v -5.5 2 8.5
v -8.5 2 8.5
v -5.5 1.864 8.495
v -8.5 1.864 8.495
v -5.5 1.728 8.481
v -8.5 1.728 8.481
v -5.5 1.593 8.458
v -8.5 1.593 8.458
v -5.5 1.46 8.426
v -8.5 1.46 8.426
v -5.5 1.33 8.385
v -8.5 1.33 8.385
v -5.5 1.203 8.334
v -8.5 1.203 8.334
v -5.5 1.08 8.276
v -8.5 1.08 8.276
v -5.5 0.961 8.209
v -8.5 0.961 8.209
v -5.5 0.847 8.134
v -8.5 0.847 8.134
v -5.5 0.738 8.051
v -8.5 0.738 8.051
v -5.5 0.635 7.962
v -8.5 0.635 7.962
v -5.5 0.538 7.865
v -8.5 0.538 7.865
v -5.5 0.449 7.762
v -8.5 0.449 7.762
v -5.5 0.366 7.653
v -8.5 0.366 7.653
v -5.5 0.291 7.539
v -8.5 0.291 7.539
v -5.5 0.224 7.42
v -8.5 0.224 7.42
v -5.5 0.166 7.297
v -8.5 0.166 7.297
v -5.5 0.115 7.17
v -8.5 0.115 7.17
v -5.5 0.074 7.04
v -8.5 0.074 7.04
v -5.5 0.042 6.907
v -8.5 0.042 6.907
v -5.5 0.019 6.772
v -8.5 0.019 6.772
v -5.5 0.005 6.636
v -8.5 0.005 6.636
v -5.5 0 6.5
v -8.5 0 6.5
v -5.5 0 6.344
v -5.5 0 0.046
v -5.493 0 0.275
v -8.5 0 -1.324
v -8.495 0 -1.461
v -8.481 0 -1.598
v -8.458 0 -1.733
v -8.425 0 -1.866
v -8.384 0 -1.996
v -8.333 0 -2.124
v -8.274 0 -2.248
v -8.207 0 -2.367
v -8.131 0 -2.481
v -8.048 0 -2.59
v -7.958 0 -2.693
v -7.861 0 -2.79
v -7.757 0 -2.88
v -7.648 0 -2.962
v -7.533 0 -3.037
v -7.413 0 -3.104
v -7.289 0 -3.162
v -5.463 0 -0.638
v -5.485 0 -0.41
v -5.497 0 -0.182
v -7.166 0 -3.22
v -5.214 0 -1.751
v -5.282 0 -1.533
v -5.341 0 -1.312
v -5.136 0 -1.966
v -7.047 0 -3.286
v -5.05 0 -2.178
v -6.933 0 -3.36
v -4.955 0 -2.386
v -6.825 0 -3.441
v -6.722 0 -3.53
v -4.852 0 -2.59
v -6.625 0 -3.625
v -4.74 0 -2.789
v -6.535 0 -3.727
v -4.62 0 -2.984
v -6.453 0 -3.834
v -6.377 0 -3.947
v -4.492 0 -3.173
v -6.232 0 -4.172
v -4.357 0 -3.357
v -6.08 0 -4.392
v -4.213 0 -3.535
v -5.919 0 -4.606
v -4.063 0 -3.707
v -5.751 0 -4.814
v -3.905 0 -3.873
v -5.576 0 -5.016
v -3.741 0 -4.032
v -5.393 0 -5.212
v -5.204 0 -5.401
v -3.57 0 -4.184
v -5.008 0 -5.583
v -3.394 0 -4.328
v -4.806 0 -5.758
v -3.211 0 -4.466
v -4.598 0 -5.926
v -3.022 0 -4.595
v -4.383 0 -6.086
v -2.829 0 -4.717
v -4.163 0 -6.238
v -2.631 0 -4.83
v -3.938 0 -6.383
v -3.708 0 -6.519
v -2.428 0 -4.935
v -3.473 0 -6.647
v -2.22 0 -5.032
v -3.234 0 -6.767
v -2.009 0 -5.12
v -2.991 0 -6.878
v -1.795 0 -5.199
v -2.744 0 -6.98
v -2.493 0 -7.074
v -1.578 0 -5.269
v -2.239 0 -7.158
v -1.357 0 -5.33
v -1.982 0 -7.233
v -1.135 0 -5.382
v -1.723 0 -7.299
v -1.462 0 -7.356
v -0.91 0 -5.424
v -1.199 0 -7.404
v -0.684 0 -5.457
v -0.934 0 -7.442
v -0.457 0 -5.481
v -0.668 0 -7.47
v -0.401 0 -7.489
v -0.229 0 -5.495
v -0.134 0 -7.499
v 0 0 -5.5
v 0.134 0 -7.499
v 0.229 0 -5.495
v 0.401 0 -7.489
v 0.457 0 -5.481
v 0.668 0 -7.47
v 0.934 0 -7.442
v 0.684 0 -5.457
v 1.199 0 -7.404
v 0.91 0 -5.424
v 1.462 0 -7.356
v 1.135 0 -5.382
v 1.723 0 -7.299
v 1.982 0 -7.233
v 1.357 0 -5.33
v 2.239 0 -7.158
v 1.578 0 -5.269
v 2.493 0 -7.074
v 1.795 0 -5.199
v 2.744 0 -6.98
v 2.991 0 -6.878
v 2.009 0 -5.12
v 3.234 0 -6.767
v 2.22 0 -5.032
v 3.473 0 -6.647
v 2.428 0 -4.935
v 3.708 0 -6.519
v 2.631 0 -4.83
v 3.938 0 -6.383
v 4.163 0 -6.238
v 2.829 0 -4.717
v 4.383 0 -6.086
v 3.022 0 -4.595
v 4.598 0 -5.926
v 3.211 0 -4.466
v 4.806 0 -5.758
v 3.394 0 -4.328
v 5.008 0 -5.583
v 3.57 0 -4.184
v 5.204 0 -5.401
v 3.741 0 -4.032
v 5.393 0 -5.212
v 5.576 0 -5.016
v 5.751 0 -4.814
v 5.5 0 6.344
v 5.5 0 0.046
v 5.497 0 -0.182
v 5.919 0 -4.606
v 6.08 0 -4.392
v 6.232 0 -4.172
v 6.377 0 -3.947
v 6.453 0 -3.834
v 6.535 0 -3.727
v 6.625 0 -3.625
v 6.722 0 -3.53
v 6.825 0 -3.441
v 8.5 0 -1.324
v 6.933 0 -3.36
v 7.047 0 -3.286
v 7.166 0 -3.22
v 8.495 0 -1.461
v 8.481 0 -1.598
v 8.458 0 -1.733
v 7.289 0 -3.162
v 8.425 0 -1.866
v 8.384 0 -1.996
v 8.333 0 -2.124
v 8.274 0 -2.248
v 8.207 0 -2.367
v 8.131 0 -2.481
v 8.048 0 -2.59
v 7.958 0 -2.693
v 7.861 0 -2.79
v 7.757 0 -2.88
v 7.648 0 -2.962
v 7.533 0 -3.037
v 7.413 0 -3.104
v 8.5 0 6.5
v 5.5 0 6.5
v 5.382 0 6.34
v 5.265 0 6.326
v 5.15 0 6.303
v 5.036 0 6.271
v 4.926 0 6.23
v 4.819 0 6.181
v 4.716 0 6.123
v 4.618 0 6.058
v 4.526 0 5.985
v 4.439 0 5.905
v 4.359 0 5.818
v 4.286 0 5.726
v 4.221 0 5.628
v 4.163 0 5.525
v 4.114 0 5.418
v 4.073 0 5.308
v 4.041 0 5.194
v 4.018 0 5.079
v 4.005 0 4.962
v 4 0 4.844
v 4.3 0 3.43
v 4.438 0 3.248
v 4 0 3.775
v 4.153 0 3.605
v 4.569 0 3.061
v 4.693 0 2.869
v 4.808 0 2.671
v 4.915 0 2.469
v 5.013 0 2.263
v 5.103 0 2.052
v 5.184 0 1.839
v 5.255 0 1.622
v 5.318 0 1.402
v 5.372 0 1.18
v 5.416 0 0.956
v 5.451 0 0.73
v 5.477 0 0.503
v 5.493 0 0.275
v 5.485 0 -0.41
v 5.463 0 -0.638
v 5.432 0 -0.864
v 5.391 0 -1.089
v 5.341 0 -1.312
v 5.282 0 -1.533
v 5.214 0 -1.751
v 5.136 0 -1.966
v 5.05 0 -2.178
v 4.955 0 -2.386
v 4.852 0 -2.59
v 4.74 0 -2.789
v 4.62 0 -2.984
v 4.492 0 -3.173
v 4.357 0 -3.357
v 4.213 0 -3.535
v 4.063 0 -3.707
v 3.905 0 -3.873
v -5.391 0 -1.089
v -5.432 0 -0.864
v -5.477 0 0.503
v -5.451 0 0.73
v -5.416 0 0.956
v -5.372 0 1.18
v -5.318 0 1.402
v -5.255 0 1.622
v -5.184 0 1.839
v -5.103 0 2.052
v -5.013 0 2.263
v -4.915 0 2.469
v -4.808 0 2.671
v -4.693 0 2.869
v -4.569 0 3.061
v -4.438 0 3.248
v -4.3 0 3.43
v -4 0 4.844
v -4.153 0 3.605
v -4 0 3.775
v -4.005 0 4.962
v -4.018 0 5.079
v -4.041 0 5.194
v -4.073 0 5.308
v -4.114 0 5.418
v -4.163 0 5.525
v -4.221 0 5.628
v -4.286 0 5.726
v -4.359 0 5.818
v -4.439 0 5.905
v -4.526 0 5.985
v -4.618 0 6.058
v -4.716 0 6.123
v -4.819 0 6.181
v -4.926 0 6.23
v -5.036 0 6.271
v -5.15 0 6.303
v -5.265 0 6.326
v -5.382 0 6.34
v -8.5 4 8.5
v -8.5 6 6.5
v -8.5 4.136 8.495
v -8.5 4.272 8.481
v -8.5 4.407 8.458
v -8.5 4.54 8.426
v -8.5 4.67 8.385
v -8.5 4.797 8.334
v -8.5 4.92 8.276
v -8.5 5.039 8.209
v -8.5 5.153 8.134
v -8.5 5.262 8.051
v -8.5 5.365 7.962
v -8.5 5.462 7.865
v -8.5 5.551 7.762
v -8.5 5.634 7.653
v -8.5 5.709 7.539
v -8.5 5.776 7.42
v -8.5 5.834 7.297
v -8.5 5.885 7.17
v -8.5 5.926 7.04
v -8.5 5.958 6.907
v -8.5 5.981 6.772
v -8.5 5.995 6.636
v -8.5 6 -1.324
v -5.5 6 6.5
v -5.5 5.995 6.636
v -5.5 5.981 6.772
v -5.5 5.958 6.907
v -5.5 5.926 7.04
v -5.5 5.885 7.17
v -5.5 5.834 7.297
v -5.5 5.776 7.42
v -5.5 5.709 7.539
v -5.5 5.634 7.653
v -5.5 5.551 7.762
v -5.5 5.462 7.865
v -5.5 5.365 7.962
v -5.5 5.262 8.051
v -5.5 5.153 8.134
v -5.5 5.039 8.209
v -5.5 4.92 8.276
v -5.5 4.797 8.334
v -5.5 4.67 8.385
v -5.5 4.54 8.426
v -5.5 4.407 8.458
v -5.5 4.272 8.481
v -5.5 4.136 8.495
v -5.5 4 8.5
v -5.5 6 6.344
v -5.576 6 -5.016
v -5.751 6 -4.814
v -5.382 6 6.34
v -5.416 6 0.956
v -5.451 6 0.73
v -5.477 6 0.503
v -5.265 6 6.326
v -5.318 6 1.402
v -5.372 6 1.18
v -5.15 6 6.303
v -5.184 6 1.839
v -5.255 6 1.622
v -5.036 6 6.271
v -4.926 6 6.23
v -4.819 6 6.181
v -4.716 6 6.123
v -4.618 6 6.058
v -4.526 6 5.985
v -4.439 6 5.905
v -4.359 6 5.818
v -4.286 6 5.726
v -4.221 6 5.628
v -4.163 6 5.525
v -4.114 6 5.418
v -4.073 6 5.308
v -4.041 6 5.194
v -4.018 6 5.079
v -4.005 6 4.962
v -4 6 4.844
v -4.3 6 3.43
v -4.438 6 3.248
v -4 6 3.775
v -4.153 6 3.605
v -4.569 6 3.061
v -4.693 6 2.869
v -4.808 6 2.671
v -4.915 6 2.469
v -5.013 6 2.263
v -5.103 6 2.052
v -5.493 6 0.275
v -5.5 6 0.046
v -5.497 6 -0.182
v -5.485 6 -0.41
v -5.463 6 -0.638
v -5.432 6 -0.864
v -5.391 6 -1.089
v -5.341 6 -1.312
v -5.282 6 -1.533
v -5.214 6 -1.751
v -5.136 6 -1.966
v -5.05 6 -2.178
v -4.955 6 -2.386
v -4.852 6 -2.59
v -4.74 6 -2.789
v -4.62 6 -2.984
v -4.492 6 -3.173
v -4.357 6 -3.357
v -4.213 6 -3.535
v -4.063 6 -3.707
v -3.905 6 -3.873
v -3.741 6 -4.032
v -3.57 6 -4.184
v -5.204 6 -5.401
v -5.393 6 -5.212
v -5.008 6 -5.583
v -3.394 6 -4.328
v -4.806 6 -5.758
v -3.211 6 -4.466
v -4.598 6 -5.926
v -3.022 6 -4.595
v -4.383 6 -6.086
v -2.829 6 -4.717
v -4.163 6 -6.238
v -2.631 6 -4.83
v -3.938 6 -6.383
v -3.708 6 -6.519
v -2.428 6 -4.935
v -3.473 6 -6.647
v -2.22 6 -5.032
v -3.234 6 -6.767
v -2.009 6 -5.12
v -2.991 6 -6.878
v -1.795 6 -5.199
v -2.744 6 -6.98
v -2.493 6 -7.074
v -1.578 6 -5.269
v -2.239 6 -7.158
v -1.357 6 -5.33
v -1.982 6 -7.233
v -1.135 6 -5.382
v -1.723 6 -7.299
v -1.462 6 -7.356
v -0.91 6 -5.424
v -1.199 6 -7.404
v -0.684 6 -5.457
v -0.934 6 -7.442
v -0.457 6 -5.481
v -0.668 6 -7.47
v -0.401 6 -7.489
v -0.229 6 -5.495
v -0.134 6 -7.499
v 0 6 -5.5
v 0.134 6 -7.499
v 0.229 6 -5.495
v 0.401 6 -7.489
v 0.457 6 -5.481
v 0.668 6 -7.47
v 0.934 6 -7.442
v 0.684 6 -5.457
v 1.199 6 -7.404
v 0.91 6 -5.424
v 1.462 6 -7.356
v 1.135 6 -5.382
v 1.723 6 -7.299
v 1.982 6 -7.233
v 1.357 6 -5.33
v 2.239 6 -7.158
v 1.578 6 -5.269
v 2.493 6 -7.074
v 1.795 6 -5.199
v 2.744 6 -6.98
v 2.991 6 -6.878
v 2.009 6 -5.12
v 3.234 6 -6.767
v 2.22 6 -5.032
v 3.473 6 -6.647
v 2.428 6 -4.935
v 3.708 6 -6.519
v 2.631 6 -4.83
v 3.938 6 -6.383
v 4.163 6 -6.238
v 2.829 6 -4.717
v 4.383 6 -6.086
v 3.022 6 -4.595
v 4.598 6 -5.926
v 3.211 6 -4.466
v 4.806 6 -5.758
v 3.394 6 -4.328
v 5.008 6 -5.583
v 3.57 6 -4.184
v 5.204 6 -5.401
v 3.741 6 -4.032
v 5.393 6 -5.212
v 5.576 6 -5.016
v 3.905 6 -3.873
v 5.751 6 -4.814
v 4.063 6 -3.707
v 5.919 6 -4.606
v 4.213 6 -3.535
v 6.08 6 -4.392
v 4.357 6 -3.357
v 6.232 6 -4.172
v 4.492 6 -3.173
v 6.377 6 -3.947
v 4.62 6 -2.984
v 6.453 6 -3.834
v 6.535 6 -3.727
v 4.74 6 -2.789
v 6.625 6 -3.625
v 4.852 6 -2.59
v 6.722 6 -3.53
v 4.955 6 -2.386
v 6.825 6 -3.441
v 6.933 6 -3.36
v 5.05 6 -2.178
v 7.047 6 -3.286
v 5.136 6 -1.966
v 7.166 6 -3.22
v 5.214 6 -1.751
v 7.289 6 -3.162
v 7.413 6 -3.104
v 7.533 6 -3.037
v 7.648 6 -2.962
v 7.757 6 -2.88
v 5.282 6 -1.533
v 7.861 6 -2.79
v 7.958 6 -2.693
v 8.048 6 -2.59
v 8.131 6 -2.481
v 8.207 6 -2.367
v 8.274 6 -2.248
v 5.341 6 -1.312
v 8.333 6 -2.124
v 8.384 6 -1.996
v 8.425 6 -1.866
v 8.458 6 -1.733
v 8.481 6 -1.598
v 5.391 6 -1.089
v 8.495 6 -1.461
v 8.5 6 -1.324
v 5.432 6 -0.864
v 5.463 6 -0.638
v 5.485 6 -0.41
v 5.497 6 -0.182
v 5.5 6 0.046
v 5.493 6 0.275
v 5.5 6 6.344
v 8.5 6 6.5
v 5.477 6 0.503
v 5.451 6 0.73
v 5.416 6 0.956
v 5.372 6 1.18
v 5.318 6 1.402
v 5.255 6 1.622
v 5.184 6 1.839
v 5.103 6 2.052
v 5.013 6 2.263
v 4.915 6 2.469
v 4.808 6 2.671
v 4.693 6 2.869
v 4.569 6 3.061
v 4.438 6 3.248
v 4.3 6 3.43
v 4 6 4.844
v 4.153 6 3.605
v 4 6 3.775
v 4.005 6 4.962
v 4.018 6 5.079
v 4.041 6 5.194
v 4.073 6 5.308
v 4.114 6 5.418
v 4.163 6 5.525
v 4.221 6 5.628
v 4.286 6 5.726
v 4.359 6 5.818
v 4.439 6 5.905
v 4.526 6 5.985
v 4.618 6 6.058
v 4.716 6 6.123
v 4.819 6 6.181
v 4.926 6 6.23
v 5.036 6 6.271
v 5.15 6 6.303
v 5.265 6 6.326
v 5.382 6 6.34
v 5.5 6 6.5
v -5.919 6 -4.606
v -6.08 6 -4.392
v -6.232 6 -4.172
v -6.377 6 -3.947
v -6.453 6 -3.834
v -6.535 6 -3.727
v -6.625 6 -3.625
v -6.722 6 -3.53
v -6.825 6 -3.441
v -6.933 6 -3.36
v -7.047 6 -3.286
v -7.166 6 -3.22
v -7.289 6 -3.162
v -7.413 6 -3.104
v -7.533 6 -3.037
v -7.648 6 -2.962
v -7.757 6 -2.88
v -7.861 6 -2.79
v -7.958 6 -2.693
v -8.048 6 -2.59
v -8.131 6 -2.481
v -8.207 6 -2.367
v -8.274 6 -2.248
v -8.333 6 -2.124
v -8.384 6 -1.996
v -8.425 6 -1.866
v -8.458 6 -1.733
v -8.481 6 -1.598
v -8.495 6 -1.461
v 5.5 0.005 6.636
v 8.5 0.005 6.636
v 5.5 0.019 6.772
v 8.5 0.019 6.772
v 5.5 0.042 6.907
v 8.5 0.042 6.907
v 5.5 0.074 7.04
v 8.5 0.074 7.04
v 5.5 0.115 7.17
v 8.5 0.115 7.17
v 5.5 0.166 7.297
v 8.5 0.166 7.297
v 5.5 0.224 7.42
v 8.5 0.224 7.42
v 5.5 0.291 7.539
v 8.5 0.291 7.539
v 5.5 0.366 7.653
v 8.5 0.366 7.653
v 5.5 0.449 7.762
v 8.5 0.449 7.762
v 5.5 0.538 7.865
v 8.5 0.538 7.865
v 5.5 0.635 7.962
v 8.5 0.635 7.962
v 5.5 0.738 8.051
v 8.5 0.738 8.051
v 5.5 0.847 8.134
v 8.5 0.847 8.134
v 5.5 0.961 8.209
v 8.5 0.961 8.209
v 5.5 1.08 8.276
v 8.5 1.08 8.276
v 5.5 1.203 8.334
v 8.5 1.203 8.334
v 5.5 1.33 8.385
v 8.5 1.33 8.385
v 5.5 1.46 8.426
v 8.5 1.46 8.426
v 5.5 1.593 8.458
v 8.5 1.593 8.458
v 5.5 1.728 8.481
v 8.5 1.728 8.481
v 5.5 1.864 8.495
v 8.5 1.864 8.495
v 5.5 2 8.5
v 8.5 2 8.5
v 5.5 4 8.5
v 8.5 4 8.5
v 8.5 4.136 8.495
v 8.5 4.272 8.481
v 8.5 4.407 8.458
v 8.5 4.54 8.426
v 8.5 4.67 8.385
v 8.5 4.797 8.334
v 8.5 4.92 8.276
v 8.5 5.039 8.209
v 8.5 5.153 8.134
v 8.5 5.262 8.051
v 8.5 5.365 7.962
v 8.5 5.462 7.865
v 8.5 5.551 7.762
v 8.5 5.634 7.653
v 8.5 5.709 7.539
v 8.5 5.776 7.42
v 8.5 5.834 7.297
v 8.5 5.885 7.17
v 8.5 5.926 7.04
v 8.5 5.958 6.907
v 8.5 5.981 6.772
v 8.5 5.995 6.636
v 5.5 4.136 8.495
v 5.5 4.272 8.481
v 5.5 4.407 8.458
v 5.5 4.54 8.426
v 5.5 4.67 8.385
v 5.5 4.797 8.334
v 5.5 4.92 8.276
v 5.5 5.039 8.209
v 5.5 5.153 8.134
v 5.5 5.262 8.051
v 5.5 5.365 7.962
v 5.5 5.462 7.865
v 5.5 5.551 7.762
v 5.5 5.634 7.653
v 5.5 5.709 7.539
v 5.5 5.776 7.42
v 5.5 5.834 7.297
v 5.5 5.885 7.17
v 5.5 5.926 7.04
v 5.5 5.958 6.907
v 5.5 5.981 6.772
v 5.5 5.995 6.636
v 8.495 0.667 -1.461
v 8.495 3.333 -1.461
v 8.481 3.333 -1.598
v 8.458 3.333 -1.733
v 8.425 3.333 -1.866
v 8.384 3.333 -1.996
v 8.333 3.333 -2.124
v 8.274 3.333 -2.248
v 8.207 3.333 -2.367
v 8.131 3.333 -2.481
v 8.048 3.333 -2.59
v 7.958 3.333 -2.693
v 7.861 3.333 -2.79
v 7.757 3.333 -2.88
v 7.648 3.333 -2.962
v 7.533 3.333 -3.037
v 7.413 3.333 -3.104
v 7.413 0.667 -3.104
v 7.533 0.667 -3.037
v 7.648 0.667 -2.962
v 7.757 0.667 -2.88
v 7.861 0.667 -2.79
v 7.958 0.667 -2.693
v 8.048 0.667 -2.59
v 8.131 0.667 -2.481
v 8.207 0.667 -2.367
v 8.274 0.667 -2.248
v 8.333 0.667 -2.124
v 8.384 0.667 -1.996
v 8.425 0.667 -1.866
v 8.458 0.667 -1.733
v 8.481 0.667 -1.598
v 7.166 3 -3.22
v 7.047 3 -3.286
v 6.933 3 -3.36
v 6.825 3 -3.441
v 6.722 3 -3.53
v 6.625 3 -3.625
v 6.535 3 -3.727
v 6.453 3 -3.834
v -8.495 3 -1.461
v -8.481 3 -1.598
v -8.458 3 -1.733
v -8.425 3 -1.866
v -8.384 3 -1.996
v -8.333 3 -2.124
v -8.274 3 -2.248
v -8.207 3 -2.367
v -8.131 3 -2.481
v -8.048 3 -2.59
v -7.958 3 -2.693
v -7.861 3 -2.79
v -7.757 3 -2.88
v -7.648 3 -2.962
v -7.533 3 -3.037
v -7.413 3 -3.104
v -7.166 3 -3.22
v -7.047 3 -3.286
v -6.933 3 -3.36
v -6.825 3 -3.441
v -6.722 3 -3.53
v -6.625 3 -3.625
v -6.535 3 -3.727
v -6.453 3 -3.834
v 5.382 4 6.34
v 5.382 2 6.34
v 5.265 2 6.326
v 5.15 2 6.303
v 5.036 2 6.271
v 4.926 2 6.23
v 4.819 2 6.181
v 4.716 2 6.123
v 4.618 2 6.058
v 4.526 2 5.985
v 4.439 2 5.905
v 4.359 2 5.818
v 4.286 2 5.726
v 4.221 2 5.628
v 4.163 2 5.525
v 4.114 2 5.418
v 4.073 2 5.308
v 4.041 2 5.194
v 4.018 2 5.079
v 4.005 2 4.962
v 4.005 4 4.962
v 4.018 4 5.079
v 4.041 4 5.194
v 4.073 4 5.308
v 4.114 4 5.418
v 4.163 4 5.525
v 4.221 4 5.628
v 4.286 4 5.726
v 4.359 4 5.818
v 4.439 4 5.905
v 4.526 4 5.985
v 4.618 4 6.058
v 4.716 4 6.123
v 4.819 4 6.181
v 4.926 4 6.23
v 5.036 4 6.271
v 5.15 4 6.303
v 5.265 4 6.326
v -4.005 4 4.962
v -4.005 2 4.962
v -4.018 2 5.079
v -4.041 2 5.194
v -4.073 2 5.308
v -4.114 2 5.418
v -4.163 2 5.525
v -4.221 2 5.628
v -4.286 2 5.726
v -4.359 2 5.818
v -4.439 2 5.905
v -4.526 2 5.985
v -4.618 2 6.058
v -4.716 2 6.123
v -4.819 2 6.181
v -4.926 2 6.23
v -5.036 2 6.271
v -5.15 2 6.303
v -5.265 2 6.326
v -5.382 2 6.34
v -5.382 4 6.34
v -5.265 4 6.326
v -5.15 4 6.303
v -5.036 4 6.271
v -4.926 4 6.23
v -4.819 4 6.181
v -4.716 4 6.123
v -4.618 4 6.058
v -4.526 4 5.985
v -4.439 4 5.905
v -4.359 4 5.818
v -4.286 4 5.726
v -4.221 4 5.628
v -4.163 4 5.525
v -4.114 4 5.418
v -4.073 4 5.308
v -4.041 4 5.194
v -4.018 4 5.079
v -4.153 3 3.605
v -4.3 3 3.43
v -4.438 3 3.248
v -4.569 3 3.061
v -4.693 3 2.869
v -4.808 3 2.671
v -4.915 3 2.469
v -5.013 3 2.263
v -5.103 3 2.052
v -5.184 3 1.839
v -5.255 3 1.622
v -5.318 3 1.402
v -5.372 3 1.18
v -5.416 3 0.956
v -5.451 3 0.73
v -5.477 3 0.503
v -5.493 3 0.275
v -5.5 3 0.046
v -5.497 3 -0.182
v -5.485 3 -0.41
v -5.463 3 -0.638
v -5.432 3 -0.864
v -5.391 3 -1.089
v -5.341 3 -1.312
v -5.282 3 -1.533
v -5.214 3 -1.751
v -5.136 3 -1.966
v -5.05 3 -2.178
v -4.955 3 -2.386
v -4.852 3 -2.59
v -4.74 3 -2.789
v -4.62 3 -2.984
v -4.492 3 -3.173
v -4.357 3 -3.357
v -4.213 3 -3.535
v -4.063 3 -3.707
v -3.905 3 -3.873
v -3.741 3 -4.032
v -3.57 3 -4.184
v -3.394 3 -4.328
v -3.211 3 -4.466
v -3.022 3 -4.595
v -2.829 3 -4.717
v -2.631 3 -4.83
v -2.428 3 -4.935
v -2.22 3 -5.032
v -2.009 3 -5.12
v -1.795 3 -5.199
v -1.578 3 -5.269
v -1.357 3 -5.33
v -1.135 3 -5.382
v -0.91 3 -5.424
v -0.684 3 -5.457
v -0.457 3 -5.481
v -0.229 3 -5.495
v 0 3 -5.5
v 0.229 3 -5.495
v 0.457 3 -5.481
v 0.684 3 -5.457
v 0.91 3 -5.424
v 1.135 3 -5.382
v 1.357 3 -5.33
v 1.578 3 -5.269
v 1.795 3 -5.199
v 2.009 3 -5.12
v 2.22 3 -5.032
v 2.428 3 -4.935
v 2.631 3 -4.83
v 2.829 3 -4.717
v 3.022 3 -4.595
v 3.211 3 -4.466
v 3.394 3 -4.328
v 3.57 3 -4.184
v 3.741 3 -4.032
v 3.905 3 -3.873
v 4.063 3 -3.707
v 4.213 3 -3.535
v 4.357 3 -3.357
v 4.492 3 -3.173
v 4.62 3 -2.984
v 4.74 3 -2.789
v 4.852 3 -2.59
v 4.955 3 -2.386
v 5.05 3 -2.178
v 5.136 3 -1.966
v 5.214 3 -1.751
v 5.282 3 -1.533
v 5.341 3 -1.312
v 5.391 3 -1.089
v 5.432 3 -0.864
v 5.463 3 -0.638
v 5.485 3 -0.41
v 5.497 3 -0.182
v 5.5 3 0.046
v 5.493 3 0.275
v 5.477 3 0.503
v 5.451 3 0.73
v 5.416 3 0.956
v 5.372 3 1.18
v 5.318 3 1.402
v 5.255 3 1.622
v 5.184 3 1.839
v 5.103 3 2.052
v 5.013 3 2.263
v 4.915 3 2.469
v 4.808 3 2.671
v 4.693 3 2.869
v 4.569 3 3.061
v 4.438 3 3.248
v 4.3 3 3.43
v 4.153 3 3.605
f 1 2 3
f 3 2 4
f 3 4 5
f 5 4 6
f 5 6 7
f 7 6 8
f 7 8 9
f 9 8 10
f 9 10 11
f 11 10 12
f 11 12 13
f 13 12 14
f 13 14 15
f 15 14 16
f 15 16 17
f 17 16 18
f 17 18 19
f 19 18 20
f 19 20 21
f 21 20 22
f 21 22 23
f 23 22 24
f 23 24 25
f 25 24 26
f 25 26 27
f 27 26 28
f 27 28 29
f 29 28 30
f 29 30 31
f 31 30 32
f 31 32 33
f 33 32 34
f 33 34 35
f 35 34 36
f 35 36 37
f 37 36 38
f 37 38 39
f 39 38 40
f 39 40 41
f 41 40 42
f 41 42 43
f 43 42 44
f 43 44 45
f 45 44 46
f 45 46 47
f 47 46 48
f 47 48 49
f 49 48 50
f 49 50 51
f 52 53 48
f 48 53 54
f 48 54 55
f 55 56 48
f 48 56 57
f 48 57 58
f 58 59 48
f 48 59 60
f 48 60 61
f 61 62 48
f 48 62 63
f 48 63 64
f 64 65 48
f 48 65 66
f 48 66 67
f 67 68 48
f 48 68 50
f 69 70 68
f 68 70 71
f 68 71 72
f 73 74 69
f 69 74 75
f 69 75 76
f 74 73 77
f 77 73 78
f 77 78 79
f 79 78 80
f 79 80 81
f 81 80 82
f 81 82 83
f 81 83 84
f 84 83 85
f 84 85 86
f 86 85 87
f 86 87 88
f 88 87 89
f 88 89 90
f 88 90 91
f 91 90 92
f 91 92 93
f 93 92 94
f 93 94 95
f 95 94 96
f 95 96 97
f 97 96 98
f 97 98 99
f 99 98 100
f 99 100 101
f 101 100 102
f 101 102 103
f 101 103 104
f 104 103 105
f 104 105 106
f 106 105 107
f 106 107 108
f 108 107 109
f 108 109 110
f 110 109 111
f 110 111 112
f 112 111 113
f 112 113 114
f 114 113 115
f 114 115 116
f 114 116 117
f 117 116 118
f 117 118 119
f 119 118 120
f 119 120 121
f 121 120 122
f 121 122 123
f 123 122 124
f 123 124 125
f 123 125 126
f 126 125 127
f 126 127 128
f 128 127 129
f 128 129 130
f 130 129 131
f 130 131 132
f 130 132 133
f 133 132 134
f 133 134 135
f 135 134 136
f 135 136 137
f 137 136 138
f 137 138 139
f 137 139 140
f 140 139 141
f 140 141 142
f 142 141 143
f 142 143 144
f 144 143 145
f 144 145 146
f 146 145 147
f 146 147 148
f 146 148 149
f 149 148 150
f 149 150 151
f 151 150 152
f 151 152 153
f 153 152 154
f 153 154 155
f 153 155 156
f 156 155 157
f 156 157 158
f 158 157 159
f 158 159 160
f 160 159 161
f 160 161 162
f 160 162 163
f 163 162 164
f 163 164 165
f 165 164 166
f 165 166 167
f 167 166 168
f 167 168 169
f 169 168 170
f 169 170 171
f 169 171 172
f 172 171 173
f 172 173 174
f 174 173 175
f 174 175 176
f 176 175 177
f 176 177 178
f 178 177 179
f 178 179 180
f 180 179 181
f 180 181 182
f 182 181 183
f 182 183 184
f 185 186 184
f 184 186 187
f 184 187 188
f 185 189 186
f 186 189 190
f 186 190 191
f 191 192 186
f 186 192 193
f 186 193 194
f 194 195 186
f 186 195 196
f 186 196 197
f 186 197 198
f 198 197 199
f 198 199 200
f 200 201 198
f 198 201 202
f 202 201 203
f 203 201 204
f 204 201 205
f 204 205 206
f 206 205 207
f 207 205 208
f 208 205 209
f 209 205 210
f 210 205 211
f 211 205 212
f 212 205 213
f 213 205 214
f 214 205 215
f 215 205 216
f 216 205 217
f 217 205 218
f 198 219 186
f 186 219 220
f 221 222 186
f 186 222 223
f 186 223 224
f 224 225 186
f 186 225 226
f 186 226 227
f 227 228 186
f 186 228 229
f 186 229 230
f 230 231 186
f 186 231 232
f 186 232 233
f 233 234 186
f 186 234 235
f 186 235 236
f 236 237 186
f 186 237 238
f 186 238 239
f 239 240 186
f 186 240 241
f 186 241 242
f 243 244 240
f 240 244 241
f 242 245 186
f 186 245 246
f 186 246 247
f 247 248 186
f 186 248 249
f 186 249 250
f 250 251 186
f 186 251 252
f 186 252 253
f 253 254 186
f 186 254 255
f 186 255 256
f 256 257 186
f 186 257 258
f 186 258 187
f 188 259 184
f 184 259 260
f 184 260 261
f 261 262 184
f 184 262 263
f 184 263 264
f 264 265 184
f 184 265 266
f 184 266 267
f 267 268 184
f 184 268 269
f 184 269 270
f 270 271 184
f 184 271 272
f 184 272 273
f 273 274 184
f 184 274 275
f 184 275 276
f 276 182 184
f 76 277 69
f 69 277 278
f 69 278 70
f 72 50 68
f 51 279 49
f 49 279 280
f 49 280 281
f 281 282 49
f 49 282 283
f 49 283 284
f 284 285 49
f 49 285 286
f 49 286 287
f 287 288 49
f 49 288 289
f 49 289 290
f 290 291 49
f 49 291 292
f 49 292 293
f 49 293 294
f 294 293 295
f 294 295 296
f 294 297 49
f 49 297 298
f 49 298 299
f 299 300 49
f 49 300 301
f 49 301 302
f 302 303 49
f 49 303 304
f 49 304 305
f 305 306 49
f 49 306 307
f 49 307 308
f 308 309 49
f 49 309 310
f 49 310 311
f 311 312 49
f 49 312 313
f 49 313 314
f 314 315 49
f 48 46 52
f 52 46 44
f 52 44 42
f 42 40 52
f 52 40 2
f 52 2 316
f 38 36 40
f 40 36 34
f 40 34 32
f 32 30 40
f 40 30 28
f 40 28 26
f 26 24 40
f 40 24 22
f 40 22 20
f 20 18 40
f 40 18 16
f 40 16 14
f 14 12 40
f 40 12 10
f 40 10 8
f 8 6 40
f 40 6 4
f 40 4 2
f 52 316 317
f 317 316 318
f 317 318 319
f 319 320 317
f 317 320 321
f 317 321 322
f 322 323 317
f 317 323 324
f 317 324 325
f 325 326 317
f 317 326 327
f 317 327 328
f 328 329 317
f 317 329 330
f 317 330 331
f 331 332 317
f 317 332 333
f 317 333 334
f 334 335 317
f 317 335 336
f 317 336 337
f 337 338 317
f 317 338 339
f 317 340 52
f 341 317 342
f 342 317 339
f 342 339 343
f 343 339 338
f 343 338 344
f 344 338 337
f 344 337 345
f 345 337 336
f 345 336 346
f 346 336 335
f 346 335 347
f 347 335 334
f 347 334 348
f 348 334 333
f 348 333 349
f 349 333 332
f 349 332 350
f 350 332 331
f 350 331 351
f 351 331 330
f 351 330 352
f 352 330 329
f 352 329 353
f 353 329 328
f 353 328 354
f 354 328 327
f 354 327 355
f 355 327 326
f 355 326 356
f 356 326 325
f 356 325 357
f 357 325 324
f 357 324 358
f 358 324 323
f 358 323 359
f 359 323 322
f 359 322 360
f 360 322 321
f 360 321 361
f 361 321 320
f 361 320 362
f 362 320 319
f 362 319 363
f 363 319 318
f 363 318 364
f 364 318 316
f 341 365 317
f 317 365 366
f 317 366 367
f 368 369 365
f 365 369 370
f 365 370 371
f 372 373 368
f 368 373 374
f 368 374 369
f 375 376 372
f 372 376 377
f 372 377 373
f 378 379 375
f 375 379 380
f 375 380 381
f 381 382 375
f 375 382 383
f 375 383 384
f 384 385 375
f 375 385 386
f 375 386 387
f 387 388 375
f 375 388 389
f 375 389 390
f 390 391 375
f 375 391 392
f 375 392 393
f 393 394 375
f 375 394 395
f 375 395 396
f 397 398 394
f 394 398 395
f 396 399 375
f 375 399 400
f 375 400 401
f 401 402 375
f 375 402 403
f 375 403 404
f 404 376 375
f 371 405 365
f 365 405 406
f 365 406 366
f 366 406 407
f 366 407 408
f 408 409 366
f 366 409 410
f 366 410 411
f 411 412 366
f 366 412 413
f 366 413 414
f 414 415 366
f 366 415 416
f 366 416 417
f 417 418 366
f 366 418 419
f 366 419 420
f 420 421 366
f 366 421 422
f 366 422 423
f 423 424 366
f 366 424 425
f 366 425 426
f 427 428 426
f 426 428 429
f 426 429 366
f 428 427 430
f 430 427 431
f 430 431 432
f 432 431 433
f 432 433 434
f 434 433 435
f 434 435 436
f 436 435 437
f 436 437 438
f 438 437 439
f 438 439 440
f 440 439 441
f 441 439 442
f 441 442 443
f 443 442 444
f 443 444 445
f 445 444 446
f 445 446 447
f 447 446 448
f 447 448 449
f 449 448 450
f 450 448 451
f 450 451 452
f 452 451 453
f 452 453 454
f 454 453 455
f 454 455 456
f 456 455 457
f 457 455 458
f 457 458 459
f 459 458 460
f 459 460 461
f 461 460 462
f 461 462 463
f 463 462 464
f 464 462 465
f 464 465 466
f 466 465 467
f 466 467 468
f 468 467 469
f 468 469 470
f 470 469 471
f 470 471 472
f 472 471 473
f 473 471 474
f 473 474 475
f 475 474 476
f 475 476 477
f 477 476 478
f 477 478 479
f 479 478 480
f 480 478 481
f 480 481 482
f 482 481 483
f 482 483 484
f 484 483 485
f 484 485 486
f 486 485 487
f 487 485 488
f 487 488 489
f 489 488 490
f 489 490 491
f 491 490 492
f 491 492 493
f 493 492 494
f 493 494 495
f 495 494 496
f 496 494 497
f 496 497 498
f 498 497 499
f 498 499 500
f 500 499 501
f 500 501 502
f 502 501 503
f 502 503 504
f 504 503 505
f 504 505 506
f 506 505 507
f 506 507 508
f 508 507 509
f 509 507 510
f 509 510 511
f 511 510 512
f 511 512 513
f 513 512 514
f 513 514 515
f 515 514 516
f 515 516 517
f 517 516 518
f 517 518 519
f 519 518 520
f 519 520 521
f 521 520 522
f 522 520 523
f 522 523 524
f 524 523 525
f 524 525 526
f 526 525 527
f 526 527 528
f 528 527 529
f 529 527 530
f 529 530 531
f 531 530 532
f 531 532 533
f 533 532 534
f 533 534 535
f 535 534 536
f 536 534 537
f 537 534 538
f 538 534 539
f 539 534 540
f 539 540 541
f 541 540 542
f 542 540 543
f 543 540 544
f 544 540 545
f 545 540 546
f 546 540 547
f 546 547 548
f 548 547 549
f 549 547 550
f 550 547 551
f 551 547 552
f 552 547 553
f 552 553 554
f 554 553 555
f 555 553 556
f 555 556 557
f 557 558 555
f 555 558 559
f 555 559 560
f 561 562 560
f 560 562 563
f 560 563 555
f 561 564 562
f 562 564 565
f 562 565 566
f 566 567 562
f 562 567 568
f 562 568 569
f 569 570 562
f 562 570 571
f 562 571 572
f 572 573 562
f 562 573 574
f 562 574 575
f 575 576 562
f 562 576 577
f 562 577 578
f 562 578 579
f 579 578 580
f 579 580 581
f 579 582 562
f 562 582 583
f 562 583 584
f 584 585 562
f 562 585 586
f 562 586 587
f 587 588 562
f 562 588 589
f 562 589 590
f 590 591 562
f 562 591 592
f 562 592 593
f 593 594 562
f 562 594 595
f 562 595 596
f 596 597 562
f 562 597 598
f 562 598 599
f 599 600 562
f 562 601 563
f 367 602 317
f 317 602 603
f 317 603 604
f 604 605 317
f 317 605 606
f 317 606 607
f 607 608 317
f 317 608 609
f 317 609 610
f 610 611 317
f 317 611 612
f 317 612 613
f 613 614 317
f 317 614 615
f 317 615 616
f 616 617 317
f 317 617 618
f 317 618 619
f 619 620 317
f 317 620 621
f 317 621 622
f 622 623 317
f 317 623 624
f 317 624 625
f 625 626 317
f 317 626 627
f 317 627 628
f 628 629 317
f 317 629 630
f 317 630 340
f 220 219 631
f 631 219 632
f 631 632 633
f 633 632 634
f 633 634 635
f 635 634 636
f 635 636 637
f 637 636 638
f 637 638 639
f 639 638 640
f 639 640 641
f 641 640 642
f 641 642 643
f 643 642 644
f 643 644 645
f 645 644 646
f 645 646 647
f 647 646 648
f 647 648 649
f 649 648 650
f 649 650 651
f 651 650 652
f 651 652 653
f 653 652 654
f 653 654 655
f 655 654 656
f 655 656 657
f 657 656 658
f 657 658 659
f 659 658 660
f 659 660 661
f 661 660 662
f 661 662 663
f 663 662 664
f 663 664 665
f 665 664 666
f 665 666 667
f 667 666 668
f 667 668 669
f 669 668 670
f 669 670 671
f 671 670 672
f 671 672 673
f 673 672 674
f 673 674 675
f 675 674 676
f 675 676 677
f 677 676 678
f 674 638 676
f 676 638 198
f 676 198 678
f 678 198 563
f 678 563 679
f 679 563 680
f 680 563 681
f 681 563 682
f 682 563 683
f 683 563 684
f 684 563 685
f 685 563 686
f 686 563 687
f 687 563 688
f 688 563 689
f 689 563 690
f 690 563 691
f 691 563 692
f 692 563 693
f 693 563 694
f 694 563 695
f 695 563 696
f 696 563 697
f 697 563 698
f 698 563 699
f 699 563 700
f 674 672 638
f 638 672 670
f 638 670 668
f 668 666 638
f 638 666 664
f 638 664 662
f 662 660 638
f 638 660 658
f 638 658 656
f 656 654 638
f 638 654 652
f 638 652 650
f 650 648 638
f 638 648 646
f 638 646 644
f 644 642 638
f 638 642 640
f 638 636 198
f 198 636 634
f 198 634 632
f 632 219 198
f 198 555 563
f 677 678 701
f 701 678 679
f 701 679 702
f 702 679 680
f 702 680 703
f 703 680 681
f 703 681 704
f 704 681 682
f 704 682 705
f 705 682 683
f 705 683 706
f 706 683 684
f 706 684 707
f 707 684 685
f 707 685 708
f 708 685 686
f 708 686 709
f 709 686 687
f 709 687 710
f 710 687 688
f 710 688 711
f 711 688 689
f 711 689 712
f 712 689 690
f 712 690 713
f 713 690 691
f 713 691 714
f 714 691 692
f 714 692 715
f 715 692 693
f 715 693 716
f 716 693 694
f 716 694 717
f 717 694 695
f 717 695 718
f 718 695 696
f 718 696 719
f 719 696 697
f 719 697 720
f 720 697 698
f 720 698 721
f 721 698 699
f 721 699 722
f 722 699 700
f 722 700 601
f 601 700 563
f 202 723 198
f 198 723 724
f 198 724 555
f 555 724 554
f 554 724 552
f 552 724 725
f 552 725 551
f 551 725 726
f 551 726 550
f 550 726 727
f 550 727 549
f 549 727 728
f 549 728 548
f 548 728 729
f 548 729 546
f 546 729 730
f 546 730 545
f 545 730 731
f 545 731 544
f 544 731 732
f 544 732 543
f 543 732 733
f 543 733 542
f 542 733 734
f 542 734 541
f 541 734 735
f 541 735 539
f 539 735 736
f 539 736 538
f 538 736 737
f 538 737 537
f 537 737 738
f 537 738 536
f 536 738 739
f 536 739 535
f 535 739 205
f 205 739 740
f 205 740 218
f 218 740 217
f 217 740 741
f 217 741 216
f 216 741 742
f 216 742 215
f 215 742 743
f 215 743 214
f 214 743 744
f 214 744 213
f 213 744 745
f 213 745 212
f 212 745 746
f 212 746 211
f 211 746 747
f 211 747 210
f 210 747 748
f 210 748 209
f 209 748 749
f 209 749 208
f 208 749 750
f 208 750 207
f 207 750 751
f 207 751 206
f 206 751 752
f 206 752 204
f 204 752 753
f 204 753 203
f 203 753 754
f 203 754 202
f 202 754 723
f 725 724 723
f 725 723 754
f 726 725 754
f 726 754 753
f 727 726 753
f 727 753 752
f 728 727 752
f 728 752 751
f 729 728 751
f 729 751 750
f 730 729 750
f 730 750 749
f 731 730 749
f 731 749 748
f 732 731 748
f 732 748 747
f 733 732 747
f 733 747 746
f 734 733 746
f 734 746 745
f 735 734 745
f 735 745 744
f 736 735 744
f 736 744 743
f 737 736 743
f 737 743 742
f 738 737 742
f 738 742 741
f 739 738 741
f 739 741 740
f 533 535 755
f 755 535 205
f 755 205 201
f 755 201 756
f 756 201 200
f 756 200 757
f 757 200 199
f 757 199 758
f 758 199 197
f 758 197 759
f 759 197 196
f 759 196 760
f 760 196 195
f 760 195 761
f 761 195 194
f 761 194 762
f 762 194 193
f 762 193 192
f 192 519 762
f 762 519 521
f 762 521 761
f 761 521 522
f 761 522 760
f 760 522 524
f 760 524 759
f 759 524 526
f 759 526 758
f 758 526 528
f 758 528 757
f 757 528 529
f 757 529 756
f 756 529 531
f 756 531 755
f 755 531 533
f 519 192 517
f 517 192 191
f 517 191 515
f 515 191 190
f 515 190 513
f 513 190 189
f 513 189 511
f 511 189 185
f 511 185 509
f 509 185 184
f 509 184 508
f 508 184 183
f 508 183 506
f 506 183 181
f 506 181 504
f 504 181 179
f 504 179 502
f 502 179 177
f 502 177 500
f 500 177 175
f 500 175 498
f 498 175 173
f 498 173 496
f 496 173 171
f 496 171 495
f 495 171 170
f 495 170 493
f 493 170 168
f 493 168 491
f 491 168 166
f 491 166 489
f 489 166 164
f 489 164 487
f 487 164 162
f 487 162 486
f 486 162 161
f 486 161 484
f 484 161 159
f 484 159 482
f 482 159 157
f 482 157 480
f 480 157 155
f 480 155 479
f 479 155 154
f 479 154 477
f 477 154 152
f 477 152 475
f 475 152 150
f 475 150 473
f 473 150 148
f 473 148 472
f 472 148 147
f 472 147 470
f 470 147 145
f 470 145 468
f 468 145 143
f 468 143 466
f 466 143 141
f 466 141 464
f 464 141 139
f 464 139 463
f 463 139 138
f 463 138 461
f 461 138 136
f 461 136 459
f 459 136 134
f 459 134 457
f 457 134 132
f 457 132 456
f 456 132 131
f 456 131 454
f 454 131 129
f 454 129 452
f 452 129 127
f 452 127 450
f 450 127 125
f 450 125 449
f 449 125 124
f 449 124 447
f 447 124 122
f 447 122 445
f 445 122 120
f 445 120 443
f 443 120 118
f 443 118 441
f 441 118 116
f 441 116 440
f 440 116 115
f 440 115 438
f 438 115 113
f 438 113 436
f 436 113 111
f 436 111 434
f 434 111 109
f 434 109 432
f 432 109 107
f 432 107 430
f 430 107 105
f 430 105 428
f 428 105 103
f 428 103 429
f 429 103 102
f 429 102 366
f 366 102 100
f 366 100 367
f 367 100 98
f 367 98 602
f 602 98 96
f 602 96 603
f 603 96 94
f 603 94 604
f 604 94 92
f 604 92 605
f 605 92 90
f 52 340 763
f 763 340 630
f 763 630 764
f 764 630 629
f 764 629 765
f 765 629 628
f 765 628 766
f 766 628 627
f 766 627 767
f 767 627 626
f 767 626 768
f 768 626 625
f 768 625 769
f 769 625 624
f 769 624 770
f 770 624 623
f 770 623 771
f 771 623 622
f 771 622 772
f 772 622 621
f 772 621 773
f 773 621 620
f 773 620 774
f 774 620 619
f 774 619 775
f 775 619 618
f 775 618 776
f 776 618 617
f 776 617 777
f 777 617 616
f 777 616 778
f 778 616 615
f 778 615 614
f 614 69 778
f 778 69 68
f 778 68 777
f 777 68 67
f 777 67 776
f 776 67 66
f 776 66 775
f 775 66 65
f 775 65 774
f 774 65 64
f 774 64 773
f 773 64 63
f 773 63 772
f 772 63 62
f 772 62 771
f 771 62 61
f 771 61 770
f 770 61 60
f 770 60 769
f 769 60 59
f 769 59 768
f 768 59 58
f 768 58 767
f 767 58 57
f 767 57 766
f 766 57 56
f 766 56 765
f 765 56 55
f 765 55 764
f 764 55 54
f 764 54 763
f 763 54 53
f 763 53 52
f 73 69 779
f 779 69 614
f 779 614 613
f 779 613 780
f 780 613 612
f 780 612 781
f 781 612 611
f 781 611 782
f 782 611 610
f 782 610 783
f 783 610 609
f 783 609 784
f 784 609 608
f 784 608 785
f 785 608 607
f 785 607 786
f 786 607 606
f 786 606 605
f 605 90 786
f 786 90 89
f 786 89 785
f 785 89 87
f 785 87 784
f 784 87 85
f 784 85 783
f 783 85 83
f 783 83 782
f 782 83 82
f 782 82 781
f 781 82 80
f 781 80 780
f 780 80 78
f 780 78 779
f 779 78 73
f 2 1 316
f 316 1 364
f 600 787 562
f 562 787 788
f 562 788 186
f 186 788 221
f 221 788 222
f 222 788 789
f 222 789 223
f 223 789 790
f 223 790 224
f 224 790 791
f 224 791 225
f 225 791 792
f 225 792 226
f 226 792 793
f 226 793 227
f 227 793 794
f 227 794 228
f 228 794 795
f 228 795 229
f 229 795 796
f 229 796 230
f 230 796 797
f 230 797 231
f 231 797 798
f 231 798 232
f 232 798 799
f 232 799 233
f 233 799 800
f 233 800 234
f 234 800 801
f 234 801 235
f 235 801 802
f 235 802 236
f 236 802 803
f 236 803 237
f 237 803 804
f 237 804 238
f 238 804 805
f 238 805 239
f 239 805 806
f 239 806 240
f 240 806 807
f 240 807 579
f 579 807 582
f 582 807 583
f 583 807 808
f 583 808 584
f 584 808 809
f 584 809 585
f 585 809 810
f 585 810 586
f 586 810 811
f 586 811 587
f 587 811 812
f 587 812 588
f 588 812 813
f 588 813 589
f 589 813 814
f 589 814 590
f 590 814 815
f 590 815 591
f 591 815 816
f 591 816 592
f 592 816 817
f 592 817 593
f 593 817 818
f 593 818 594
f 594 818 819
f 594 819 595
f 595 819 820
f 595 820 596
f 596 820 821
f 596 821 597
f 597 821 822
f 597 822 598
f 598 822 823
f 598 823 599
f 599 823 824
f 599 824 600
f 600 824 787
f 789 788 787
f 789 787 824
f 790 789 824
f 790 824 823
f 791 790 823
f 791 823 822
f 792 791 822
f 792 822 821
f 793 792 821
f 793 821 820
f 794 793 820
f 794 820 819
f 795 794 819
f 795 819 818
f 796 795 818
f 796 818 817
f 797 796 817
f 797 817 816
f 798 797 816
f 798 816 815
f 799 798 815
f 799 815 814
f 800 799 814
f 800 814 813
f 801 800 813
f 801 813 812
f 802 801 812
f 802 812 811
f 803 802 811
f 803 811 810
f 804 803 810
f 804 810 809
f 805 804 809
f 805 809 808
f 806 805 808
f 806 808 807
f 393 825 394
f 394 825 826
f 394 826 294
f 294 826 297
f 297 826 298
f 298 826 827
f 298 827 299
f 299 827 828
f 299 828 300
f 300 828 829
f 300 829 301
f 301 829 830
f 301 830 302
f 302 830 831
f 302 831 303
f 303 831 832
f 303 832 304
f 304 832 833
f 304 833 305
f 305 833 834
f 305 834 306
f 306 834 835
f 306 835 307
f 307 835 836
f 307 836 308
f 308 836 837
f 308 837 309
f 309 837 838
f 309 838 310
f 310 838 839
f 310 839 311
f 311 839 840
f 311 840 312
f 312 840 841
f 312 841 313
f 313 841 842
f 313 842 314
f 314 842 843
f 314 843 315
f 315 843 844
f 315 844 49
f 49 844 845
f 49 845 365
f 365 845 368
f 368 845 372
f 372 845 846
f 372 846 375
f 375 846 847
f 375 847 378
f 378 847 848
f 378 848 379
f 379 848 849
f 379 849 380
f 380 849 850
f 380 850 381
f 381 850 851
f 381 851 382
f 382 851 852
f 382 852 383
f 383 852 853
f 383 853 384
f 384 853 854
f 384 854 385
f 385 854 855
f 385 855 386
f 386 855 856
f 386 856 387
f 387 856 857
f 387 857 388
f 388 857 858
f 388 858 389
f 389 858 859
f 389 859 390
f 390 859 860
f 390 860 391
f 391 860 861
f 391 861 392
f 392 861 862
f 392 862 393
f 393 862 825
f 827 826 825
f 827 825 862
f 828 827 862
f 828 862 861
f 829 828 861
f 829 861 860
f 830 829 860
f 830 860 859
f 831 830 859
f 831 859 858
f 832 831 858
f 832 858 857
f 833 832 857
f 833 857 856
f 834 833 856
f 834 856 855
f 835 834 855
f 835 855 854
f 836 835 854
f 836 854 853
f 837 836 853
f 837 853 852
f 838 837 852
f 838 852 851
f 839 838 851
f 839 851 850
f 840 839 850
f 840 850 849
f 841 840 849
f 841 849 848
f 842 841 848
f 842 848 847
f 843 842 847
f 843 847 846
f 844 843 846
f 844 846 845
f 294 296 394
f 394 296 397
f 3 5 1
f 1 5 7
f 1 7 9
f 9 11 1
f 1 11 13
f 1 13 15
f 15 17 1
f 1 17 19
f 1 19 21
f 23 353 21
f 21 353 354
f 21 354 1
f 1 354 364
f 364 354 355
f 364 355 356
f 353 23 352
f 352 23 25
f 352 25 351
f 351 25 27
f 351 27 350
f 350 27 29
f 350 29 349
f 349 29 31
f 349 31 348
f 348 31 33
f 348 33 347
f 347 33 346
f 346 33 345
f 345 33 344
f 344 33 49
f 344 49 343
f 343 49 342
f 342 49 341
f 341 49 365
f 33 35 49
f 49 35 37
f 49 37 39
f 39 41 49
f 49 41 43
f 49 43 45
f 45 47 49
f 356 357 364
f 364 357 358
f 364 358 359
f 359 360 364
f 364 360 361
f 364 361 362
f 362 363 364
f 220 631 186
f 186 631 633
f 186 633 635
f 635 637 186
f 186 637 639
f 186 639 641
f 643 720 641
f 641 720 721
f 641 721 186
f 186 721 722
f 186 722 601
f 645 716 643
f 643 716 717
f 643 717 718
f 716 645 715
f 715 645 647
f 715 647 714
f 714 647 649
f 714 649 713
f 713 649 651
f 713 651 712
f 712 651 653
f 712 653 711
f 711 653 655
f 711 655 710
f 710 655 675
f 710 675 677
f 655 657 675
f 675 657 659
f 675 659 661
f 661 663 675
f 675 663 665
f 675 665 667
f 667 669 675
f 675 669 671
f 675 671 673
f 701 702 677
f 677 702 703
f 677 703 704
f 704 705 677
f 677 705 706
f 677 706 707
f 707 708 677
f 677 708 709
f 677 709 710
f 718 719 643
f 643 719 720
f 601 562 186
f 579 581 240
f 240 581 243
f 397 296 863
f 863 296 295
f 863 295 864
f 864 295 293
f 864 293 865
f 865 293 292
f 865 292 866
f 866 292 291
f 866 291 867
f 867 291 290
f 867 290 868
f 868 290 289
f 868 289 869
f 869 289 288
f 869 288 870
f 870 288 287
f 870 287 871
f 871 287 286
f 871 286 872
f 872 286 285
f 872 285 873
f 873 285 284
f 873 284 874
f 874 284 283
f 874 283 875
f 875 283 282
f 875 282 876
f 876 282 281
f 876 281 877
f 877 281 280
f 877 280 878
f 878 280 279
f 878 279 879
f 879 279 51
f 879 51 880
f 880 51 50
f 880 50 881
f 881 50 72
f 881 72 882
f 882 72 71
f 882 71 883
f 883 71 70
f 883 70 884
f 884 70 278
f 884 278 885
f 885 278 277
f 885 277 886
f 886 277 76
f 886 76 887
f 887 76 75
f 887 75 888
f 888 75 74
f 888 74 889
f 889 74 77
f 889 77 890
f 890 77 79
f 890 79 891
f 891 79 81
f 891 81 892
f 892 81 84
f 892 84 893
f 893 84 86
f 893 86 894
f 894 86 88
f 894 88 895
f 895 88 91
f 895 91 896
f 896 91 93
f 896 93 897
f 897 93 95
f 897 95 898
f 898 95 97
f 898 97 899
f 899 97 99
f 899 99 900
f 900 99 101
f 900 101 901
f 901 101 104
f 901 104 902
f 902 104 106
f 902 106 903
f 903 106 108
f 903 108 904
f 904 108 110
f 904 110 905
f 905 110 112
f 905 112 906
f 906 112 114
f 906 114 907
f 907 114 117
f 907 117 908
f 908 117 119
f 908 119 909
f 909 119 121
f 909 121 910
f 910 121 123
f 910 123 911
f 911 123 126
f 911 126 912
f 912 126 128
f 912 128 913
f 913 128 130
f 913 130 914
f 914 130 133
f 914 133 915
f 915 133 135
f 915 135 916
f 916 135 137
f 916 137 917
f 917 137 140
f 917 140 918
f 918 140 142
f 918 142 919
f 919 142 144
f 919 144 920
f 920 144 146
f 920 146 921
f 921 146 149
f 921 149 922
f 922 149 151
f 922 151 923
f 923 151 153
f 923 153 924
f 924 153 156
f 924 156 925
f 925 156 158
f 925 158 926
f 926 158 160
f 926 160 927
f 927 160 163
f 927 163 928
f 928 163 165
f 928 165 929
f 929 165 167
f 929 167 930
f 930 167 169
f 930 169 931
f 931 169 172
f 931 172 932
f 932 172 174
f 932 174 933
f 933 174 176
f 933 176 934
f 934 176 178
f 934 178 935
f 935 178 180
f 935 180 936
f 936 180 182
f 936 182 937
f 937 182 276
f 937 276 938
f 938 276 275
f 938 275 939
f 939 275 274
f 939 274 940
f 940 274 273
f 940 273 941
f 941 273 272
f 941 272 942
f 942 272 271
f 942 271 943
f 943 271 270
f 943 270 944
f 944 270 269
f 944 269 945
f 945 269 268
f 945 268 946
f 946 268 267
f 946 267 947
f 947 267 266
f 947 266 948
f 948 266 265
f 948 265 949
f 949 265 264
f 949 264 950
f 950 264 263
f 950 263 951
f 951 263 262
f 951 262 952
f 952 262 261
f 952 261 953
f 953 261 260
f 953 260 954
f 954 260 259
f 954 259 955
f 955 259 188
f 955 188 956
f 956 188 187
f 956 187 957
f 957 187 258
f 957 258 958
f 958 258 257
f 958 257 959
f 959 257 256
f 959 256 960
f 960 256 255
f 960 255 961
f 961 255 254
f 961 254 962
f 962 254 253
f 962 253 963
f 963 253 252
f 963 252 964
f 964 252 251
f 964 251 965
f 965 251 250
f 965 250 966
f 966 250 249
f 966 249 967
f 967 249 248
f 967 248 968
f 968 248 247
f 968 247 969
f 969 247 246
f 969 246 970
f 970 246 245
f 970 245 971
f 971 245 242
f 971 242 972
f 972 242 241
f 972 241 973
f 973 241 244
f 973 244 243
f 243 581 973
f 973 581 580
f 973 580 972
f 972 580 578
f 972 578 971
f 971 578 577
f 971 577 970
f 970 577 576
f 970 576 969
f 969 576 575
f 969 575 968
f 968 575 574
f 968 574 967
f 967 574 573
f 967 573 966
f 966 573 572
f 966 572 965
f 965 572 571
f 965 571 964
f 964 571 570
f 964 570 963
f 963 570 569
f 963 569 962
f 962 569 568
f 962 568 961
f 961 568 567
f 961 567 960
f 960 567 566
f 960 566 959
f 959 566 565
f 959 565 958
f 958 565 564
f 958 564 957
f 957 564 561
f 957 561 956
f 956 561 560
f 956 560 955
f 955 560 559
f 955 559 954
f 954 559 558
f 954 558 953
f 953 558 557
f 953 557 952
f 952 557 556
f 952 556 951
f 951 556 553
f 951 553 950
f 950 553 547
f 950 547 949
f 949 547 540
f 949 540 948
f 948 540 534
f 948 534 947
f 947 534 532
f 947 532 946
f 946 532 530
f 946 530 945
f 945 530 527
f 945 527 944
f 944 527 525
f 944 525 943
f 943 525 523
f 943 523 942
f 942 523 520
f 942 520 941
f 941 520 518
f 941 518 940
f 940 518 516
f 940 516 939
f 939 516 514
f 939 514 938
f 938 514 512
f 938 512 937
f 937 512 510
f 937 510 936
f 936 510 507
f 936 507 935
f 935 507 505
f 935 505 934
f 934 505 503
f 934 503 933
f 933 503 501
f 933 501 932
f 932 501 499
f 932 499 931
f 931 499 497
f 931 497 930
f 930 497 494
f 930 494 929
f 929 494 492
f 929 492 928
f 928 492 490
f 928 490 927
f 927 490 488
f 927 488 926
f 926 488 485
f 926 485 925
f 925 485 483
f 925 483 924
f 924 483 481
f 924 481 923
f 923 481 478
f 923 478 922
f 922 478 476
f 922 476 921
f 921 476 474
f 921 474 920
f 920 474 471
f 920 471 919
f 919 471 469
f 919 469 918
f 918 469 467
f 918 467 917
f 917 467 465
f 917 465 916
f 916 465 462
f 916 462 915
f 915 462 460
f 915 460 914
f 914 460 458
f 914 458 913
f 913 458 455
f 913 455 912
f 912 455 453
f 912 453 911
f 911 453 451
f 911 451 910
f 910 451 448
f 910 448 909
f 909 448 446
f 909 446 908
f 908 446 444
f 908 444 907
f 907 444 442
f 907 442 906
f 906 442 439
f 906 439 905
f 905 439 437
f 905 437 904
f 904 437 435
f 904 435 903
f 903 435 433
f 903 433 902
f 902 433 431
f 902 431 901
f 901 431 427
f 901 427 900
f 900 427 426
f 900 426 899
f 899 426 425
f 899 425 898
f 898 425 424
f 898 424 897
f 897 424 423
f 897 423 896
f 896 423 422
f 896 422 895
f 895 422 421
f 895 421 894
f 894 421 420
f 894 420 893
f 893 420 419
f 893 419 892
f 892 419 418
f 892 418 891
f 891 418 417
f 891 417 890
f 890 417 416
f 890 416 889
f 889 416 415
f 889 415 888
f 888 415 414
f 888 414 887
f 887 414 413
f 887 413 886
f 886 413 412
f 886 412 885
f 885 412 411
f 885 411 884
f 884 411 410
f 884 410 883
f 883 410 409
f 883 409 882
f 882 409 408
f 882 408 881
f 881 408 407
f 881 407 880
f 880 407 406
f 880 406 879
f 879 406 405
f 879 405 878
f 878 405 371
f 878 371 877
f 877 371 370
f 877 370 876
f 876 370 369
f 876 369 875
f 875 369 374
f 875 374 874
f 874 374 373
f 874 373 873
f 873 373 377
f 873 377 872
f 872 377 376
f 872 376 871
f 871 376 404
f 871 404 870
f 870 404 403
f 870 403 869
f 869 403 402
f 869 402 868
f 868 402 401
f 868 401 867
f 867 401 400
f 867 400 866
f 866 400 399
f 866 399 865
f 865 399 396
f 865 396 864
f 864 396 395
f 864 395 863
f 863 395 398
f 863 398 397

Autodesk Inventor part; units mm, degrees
ref_plane "XZ Plane" through (0, 0, 0) normal (0, 1, 0) x (-1, 0, 0)
ref_plane "XY Plane" through (0, 0, 0) normal (0, 0, 1) x (1, 0, 0)
sketch "Sketch1" plane through (0, 0, 0) normal (0, 1, 0) x (-1, 0, 0)
  circle A0 centre (0, 0) radius 5.5
  circle A1 centre (0, 0) radius 7.5
  line L0 (7.5, 0) -> (-7.5, 0)
  line L1 (-7.5, 0) -> (-7.5, 8.5)
  line L2 (-7.5, 8.5) -> (7.5, 8.5)
  line L3 (7.5, 8.5) -> (7.5, 0)
  line L4 (5.5, 0) -> (-5.5, 0)
  line L5 (-5.5, 0) -> (-5.5, 8.5)
  line L6 (-5.5, 8.5) -> (5.5, 8.5)
  line L7 (5.5, 8.5) -> (5.5, 0)
  line L8 (4, 3.7749) -> (4, 6.3443)
  line L9 (-4, 3.7749) -> (-4, 6.3443)
  line L10 (4, 6.3443) -> (5.5, 6.3443)
  line L11 (-4, 6.3443) -> (-5.5, 6.3443)
  line L12 (-10.5, 0) -> (10.5, 0) projected
  point P0 (-5.5, 8.5)
  dimension "d0" = 11
  dimension "d1" = 2
  dimension "d3" = 1
  dimension "d4" = 1.5
  dimension "d5" = 1.5
extrude "Extrusion1" add sketch "Sketch1" along normal blind 6 contours L0 A1 A0 | L7 A1 L0 | A0 L8 A1 L7 | L5 A1 L9 A0 | L0 A1 L5 | A1 L7 L2 L3 | A1 L10 L7 | L1 L2 L5 A1 | L5 L11 A1
fillet "Fillet1" radius 1.5 2 edges at (-4, 3, 6.3443) (4, 3, 6.3443)
sketch "Sketch4" plane through (-7.5, 0, 0) normal (-1, 0, 0) x (0, 0, 1)
  line L0 (0, 0) -> (8.5, 0) projected
  line L1 (8.5, 0) -> (8.5, 6) projected
  line L2 (0, 6) -> (8.5, 6) projected
  line L3 (0, 0) -> (0, 6) projected
  line L4 (0, 0) -> (0, 0) projected
  line L5 (0, 0) -> (0, 6) projected
  line L6 (0, 6) -> (0, 6) projected
  line L7 (0, 0) -> (0, 6) projected
  line L8 (0, 0) -> (0, 6) projected
  line L9 (0, 6) -> (0, 0)
  line L10 (0, 0) -> (-3, 0)
  line L11 (-3, 0) -> (-3, 6)
  line L12 (-3, 6) -> (0, 6)
  point P0 (0, 0)
  dimension "d22" = 3
extrude "Extrusion3" add sketch "Sketch4" along normal mid plane 2
fillet "Fillet2" radius 2 2 edges at (-8.5, 3, -3) (-6.8739, 3, -3)
mirror "Mirror1" about plane through (0, 0, 0) normal (1, 0, 0) of "Extrusion3", "Fillet2"
fillet "Fillet5" radius 2 4 edges at (7, 6, 8.5) (7, 0, 8.5) (-7, 6, 8.5) (-7, 0, 8.5)
properties part number "Arm_restriction_clip"
